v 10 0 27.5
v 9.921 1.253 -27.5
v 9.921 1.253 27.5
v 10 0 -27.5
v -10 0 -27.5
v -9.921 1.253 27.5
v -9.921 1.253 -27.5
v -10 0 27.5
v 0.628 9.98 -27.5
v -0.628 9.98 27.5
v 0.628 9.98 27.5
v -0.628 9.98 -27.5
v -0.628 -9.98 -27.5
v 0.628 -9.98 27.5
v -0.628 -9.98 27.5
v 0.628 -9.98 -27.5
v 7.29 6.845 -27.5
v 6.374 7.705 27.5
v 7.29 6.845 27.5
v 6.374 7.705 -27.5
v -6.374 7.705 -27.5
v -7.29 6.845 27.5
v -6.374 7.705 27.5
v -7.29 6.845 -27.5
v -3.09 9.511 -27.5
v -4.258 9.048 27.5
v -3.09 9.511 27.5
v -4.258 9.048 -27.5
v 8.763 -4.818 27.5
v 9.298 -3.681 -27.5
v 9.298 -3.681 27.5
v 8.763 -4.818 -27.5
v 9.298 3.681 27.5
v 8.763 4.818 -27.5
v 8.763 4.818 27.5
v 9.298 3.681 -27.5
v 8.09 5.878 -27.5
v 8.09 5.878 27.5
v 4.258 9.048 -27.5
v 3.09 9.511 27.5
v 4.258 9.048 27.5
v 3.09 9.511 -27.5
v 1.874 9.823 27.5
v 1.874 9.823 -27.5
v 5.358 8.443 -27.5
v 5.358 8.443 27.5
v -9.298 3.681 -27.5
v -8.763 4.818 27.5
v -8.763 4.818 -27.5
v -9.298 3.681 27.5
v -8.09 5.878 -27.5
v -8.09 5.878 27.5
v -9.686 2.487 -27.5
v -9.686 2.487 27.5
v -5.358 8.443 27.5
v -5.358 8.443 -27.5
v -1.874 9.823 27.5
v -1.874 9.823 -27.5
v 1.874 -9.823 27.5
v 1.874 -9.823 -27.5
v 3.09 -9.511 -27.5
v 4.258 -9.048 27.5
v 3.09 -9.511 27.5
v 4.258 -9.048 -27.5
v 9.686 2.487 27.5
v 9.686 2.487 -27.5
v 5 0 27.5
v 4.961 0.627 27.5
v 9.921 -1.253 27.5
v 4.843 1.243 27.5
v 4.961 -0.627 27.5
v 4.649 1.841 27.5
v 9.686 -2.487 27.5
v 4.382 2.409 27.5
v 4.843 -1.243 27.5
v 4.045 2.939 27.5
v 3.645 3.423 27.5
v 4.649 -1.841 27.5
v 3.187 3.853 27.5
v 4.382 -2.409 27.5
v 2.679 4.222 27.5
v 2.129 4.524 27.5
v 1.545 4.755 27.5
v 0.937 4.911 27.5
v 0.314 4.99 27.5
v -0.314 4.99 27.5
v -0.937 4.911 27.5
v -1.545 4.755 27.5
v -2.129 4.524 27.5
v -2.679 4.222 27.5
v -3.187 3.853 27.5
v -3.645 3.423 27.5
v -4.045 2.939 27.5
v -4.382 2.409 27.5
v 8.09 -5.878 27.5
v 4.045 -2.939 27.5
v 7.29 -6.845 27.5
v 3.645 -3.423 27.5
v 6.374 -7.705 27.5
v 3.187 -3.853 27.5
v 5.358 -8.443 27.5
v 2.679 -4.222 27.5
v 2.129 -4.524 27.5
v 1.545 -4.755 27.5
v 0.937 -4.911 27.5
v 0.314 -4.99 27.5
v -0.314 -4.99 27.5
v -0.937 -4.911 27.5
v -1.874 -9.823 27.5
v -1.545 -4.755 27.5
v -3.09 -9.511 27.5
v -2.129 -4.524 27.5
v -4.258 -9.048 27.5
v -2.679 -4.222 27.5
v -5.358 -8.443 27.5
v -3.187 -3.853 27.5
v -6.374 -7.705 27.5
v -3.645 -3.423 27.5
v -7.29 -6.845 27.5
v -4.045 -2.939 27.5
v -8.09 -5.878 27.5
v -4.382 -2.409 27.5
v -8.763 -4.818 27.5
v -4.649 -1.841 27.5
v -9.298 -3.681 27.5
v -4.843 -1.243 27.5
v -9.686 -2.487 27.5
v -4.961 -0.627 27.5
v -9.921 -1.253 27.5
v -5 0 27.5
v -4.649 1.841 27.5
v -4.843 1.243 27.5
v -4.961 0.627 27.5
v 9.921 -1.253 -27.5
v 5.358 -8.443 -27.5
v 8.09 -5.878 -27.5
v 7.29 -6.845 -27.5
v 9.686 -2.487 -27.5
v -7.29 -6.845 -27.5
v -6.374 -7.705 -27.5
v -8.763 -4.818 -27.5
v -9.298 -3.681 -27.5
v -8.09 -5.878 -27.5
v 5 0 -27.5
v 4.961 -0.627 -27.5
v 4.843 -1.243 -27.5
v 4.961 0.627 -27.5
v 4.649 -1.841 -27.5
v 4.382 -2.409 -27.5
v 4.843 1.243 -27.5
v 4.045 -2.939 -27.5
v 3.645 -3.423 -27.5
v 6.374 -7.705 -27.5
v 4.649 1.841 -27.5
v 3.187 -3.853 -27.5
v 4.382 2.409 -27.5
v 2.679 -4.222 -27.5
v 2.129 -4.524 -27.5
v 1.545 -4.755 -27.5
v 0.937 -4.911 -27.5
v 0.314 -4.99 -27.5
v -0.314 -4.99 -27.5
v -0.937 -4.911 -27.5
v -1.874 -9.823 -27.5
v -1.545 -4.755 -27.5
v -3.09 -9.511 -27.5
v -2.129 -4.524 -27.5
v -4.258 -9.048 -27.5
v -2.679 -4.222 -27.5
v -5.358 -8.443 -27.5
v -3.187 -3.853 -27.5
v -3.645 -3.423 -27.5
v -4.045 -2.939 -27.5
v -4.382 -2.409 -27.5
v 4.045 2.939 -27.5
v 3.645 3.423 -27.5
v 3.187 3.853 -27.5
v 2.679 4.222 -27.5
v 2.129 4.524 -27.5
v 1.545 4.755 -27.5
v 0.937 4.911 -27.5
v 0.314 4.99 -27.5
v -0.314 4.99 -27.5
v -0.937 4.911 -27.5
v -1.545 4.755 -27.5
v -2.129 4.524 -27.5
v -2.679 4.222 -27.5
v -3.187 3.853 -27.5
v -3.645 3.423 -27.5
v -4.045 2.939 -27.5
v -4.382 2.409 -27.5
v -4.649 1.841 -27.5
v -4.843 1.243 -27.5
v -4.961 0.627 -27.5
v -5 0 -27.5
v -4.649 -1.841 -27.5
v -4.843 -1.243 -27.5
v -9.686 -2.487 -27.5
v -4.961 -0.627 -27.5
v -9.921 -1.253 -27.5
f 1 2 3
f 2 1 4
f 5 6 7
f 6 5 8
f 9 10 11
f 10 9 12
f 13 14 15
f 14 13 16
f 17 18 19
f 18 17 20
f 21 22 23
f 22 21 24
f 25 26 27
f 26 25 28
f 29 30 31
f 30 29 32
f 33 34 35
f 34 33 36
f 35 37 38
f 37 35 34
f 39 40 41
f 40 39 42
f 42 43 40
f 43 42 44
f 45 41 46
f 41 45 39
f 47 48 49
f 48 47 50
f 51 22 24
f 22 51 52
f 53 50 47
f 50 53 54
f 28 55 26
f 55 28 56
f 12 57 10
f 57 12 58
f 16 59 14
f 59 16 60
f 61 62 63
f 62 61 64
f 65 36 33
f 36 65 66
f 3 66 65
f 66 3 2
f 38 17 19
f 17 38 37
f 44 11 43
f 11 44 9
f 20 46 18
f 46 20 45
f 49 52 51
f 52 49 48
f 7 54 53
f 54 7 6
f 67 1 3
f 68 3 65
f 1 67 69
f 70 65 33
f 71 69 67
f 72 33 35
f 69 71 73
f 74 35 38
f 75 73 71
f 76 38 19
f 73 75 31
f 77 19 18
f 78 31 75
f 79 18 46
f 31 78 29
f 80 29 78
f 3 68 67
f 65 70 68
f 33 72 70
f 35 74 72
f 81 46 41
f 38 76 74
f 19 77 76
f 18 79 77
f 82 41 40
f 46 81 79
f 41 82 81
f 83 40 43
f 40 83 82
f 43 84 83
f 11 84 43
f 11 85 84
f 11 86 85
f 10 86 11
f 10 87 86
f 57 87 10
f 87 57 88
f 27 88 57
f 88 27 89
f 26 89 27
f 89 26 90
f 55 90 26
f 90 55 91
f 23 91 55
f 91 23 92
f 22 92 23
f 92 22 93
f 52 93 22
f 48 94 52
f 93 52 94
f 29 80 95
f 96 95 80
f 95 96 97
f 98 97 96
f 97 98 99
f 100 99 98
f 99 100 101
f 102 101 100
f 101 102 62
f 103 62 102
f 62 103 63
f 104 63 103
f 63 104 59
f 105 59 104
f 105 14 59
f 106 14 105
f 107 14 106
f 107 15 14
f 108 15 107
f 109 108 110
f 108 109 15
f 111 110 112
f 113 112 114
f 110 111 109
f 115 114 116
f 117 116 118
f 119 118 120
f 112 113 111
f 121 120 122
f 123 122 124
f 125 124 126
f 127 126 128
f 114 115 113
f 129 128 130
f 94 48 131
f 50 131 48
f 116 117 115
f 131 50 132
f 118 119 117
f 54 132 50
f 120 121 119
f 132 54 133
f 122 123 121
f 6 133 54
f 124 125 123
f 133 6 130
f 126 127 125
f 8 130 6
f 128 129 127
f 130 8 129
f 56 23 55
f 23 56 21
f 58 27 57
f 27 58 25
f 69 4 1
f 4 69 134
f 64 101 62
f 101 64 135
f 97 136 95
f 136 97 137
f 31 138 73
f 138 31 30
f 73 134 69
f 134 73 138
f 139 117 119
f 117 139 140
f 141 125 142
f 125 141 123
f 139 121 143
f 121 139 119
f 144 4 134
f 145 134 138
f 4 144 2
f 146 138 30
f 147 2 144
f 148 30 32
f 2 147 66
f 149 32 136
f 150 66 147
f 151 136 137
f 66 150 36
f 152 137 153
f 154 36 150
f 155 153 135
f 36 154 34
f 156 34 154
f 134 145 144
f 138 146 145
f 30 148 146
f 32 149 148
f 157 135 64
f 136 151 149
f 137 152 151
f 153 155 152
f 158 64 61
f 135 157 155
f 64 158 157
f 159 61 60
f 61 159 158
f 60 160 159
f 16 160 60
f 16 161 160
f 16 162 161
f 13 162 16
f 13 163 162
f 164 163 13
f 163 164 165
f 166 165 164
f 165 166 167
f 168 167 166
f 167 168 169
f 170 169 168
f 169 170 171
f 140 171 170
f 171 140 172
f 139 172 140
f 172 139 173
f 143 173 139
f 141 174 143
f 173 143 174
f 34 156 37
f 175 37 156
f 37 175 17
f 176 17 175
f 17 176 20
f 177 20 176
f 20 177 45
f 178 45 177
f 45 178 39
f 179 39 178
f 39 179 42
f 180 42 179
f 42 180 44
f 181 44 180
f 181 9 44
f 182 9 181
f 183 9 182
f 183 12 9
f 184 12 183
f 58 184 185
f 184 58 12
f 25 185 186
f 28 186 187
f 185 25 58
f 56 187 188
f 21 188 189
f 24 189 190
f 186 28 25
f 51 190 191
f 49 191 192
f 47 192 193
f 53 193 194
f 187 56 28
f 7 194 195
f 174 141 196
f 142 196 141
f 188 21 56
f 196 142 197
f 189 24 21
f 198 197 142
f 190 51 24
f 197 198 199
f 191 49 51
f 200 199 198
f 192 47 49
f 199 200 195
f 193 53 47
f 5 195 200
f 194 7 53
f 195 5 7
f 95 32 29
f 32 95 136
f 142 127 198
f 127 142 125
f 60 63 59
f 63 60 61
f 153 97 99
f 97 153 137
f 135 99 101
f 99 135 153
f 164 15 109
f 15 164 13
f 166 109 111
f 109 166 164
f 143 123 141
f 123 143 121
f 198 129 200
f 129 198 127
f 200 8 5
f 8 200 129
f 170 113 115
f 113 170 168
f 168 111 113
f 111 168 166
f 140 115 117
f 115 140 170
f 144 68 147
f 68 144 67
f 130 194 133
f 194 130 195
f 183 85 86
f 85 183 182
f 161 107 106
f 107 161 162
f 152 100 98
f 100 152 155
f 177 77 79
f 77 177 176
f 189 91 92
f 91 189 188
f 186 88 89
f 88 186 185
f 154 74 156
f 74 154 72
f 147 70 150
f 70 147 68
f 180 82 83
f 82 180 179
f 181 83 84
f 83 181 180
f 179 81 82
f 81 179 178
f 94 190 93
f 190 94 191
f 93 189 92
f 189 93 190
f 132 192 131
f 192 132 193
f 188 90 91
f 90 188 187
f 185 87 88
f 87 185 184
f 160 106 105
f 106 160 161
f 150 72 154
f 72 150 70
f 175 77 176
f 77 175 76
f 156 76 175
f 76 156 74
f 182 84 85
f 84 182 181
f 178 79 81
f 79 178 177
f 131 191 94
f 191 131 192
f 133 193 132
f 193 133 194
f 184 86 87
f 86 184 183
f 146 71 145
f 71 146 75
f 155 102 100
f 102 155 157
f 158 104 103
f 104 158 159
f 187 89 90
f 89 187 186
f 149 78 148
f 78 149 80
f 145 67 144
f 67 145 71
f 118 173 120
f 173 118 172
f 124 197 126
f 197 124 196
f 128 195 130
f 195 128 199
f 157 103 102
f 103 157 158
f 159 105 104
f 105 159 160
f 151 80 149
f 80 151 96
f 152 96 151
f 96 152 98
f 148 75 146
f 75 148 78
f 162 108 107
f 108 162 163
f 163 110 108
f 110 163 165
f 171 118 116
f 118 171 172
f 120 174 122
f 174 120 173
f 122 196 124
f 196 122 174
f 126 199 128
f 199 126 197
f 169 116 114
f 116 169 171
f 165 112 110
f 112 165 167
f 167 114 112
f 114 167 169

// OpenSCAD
$fn = 50;


difference() {
	union() {
		translate(v = [0, 0, -27.5000000000]) {
			cylinder(h = 55, r = 10.0000000000);
		}
	}
	union() {
		translate(v = [0, 0, -100.0000000000]) {
			cylinder(h = 200, r = 5.0000000000);
		}
	}
}
